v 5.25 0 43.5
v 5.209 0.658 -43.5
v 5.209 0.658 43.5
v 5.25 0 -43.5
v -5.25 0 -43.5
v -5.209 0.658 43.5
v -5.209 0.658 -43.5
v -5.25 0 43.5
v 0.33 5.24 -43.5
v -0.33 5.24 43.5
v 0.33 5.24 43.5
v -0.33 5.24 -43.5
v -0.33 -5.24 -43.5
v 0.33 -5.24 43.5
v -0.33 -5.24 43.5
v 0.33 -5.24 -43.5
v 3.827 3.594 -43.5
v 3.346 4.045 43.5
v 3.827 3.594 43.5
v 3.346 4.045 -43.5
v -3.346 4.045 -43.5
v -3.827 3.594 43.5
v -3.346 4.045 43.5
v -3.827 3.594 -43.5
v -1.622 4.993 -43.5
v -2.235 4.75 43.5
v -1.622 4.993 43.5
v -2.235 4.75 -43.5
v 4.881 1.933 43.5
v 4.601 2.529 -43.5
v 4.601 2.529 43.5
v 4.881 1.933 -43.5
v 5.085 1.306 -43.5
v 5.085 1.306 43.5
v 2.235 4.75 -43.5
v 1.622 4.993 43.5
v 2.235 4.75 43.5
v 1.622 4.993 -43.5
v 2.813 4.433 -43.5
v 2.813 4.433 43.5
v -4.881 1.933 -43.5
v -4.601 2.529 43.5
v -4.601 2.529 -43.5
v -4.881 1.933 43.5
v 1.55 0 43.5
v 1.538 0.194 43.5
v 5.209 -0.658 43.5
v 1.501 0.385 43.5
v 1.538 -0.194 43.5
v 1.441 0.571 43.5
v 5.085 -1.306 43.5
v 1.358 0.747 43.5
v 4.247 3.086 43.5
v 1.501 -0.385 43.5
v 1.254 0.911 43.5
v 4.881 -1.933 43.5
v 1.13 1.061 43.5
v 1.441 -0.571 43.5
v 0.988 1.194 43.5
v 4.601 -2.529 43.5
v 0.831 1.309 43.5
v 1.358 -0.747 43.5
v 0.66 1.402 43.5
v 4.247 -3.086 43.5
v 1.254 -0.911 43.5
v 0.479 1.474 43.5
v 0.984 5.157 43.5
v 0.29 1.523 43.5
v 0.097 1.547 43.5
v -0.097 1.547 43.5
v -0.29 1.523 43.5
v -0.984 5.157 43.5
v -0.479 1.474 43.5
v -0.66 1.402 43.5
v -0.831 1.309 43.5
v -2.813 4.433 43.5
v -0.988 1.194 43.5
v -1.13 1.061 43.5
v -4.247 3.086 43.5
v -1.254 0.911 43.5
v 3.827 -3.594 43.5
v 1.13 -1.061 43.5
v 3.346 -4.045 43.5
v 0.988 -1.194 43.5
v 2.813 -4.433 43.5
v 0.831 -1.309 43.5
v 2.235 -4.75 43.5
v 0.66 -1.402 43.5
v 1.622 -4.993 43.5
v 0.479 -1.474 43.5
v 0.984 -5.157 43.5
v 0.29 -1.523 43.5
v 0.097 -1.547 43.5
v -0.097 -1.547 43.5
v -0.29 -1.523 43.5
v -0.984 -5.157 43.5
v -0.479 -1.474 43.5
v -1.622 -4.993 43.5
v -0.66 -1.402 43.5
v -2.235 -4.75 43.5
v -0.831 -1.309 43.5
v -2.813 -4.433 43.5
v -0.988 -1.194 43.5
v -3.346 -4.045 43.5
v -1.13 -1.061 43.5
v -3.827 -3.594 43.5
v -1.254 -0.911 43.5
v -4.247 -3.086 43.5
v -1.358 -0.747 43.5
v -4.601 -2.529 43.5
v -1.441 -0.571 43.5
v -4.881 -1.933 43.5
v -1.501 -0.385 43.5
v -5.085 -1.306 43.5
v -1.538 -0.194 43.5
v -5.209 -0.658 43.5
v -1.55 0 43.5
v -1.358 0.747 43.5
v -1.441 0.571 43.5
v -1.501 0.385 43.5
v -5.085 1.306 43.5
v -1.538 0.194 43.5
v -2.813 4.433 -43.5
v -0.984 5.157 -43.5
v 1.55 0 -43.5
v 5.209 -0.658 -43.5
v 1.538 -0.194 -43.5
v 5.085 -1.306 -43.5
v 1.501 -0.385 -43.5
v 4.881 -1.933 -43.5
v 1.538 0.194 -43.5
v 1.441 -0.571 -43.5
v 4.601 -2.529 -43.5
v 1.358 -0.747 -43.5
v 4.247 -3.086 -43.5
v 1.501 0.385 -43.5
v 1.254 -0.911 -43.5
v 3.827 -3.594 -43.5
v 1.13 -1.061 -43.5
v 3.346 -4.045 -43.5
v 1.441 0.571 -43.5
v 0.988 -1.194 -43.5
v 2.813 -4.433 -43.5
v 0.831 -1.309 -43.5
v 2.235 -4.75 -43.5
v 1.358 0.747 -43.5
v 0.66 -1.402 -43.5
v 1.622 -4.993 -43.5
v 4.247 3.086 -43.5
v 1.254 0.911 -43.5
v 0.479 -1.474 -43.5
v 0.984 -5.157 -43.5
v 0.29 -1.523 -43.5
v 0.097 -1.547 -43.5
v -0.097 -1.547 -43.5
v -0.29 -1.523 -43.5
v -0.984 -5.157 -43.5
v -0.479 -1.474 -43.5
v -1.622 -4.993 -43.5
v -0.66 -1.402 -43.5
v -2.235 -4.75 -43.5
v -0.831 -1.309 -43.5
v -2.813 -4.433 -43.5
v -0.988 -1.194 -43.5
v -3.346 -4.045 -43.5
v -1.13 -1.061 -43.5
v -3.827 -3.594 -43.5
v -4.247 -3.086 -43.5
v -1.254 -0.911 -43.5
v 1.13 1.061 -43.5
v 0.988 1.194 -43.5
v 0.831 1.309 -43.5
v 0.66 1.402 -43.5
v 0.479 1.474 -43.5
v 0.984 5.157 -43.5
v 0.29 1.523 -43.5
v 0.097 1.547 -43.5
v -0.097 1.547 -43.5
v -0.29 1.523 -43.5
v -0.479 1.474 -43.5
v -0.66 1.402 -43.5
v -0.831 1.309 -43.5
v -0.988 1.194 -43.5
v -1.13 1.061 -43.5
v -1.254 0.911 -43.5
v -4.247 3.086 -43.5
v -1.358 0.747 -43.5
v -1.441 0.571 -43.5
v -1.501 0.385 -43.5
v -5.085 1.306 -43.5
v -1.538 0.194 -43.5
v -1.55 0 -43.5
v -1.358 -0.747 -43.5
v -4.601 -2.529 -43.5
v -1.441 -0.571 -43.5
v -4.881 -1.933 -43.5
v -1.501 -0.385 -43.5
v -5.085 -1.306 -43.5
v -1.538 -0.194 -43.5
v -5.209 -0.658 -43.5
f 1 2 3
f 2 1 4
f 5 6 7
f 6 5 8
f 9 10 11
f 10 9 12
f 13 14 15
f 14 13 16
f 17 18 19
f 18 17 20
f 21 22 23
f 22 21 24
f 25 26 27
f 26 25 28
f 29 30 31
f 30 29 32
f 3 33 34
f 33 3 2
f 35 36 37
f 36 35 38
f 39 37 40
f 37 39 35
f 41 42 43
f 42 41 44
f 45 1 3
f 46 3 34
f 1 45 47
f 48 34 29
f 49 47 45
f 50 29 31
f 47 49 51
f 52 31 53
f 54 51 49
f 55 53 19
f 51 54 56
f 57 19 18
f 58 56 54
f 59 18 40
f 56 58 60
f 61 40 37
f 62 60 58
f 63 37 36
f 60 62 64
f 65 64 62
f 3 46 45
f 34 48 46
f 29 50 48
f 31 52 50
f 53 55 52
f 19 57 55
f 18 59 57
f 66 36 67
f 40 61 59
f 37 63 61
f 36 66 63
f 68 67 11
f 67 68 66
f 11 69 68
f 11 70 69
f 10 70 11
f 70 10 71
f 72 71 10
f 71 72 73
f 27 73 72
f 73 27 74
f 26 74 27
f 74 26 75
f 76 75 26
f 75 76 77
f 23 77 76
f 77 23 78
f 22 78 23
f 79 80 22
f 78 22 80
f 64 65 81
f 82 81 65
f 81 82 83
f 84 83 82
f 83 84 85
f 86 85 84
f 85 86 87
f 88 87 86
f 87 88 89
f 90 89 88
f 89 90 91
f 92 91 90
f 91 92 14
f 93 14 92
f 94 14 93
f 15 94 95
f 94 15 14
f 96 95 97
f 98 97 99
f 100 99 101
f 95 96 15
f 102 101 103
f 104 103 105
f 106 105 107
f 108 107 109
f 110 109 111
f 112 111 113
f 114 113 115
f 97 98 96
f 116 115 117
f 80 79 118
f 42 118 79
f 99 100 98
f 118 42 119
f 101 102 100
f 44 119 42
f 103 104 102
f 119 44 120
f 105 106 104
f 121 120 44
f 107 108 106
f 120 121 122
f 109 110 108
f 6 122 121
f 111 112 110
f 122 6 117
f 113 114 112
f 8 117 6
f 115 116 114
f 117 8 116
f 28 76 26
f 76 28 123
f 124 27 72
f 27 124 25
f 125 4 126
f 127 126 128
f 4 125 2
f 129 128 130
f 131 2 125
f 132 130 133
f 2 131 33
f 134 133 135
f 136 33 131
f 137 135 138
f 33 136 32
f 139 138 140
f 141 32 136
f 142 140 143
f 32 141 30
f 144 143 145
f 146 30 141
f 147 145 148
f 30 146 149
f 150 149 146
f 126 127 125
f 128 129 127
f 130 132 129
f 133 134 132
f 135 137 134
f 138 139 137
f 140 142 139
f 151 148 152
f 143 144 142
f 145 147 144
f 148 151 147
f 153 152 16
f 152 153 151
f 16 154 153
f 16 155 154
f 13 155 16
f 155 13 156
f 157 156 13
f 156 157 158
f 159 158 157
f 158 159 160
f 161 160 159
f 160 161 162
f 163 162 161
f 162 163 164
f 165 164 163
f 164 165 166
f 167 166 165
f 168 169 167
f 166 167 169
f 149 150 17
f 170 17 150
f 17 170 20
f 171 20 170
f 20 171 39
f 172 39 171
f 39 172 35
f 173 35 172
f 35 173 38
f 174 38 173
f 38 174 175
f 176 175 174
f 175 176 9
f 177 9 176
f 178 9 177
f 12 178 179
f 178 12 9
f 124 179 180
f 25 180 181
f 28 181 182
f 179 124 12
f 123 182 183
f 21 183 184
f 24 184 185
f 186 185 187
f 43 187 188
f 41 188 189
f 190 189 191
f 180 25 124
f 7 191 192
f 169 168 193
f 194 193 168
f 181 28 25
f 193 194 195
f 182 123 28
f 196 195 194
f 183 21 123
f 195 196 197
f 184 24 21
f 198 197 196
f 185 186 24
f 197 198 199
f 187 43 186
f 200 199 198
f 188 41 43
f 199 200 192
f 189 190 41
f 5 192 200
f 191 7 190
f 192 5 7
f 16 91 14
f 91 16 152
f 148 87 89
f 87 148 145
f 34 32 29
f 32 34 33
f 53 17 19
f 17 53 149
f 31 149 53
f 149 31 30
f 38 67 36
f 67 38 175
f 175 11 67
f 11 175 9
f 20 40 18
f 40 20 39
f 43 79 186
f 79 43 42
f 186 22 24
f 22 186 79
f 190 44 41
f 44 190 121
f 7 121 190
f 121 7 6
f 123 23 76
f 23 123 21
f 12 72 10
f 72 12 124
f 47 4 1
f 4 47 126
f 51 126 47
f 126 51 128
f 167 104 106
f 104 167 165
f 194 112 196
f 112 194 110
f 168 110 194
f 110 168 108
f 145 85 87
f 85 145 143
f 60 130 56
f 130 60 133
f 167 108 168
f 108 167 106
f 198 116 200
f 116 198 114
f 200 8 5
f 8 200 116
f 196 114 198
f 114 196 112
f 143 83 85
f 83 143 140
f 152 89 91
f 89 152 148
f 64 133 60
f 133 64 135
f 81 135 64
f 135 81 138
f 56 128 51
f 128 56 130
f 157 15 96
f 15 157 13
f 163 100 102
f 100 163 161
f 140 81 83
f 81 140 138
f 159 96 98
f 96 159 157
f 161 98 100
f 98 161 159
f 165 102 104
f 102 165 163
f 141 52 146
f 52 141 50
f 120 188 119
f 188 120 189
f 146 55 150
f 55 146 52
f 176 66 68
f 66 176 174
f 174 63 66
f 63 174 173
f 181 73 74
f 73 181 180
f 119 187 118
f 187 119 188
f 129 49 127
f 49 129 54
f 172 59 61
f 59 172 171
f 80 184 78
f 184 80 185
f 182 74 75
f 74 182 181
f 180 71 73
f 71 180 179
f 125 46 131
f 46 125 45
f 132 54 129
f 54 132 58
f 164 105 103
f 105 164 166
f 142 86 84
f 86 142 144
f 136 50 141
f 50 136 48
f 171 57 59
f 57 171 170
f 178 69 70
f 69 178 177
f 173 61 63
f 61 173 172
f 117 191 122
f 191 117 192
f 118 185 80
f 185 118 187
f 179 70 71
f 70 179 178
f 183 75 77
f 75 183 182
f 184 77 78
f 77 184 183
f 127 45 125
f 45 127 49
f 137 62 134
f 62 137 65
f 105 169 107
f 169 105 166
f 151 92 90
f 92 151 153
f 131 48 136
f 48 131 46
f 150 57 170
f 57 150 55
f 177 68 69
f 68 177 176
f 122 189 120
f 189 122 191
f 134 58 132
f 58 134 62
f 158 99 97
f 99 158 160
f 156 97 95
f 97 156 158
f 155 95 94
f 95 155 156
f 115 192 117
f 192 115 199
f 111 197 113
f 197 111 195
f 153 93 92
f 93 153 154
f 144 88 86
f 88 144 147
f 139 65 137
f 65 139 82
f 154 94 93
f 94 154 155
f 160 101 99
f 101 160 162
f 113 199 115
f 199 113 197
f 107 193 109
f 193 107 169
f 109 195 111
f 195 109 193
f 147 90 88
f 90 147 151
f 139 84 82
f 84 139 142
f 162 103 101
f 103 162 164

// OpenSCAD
$fn = 50;


difference() {
	union() {
		translate(v = [0, 0, -43.5000000000]) {
			cylinder(h = 87, r = 5.2500000000);
		}
	}
	union() {
		translate(v = [0, 0, -100.0000000000]) {
			cylinder(h = 200, r = 1.5500000000);
		}
	}
}
